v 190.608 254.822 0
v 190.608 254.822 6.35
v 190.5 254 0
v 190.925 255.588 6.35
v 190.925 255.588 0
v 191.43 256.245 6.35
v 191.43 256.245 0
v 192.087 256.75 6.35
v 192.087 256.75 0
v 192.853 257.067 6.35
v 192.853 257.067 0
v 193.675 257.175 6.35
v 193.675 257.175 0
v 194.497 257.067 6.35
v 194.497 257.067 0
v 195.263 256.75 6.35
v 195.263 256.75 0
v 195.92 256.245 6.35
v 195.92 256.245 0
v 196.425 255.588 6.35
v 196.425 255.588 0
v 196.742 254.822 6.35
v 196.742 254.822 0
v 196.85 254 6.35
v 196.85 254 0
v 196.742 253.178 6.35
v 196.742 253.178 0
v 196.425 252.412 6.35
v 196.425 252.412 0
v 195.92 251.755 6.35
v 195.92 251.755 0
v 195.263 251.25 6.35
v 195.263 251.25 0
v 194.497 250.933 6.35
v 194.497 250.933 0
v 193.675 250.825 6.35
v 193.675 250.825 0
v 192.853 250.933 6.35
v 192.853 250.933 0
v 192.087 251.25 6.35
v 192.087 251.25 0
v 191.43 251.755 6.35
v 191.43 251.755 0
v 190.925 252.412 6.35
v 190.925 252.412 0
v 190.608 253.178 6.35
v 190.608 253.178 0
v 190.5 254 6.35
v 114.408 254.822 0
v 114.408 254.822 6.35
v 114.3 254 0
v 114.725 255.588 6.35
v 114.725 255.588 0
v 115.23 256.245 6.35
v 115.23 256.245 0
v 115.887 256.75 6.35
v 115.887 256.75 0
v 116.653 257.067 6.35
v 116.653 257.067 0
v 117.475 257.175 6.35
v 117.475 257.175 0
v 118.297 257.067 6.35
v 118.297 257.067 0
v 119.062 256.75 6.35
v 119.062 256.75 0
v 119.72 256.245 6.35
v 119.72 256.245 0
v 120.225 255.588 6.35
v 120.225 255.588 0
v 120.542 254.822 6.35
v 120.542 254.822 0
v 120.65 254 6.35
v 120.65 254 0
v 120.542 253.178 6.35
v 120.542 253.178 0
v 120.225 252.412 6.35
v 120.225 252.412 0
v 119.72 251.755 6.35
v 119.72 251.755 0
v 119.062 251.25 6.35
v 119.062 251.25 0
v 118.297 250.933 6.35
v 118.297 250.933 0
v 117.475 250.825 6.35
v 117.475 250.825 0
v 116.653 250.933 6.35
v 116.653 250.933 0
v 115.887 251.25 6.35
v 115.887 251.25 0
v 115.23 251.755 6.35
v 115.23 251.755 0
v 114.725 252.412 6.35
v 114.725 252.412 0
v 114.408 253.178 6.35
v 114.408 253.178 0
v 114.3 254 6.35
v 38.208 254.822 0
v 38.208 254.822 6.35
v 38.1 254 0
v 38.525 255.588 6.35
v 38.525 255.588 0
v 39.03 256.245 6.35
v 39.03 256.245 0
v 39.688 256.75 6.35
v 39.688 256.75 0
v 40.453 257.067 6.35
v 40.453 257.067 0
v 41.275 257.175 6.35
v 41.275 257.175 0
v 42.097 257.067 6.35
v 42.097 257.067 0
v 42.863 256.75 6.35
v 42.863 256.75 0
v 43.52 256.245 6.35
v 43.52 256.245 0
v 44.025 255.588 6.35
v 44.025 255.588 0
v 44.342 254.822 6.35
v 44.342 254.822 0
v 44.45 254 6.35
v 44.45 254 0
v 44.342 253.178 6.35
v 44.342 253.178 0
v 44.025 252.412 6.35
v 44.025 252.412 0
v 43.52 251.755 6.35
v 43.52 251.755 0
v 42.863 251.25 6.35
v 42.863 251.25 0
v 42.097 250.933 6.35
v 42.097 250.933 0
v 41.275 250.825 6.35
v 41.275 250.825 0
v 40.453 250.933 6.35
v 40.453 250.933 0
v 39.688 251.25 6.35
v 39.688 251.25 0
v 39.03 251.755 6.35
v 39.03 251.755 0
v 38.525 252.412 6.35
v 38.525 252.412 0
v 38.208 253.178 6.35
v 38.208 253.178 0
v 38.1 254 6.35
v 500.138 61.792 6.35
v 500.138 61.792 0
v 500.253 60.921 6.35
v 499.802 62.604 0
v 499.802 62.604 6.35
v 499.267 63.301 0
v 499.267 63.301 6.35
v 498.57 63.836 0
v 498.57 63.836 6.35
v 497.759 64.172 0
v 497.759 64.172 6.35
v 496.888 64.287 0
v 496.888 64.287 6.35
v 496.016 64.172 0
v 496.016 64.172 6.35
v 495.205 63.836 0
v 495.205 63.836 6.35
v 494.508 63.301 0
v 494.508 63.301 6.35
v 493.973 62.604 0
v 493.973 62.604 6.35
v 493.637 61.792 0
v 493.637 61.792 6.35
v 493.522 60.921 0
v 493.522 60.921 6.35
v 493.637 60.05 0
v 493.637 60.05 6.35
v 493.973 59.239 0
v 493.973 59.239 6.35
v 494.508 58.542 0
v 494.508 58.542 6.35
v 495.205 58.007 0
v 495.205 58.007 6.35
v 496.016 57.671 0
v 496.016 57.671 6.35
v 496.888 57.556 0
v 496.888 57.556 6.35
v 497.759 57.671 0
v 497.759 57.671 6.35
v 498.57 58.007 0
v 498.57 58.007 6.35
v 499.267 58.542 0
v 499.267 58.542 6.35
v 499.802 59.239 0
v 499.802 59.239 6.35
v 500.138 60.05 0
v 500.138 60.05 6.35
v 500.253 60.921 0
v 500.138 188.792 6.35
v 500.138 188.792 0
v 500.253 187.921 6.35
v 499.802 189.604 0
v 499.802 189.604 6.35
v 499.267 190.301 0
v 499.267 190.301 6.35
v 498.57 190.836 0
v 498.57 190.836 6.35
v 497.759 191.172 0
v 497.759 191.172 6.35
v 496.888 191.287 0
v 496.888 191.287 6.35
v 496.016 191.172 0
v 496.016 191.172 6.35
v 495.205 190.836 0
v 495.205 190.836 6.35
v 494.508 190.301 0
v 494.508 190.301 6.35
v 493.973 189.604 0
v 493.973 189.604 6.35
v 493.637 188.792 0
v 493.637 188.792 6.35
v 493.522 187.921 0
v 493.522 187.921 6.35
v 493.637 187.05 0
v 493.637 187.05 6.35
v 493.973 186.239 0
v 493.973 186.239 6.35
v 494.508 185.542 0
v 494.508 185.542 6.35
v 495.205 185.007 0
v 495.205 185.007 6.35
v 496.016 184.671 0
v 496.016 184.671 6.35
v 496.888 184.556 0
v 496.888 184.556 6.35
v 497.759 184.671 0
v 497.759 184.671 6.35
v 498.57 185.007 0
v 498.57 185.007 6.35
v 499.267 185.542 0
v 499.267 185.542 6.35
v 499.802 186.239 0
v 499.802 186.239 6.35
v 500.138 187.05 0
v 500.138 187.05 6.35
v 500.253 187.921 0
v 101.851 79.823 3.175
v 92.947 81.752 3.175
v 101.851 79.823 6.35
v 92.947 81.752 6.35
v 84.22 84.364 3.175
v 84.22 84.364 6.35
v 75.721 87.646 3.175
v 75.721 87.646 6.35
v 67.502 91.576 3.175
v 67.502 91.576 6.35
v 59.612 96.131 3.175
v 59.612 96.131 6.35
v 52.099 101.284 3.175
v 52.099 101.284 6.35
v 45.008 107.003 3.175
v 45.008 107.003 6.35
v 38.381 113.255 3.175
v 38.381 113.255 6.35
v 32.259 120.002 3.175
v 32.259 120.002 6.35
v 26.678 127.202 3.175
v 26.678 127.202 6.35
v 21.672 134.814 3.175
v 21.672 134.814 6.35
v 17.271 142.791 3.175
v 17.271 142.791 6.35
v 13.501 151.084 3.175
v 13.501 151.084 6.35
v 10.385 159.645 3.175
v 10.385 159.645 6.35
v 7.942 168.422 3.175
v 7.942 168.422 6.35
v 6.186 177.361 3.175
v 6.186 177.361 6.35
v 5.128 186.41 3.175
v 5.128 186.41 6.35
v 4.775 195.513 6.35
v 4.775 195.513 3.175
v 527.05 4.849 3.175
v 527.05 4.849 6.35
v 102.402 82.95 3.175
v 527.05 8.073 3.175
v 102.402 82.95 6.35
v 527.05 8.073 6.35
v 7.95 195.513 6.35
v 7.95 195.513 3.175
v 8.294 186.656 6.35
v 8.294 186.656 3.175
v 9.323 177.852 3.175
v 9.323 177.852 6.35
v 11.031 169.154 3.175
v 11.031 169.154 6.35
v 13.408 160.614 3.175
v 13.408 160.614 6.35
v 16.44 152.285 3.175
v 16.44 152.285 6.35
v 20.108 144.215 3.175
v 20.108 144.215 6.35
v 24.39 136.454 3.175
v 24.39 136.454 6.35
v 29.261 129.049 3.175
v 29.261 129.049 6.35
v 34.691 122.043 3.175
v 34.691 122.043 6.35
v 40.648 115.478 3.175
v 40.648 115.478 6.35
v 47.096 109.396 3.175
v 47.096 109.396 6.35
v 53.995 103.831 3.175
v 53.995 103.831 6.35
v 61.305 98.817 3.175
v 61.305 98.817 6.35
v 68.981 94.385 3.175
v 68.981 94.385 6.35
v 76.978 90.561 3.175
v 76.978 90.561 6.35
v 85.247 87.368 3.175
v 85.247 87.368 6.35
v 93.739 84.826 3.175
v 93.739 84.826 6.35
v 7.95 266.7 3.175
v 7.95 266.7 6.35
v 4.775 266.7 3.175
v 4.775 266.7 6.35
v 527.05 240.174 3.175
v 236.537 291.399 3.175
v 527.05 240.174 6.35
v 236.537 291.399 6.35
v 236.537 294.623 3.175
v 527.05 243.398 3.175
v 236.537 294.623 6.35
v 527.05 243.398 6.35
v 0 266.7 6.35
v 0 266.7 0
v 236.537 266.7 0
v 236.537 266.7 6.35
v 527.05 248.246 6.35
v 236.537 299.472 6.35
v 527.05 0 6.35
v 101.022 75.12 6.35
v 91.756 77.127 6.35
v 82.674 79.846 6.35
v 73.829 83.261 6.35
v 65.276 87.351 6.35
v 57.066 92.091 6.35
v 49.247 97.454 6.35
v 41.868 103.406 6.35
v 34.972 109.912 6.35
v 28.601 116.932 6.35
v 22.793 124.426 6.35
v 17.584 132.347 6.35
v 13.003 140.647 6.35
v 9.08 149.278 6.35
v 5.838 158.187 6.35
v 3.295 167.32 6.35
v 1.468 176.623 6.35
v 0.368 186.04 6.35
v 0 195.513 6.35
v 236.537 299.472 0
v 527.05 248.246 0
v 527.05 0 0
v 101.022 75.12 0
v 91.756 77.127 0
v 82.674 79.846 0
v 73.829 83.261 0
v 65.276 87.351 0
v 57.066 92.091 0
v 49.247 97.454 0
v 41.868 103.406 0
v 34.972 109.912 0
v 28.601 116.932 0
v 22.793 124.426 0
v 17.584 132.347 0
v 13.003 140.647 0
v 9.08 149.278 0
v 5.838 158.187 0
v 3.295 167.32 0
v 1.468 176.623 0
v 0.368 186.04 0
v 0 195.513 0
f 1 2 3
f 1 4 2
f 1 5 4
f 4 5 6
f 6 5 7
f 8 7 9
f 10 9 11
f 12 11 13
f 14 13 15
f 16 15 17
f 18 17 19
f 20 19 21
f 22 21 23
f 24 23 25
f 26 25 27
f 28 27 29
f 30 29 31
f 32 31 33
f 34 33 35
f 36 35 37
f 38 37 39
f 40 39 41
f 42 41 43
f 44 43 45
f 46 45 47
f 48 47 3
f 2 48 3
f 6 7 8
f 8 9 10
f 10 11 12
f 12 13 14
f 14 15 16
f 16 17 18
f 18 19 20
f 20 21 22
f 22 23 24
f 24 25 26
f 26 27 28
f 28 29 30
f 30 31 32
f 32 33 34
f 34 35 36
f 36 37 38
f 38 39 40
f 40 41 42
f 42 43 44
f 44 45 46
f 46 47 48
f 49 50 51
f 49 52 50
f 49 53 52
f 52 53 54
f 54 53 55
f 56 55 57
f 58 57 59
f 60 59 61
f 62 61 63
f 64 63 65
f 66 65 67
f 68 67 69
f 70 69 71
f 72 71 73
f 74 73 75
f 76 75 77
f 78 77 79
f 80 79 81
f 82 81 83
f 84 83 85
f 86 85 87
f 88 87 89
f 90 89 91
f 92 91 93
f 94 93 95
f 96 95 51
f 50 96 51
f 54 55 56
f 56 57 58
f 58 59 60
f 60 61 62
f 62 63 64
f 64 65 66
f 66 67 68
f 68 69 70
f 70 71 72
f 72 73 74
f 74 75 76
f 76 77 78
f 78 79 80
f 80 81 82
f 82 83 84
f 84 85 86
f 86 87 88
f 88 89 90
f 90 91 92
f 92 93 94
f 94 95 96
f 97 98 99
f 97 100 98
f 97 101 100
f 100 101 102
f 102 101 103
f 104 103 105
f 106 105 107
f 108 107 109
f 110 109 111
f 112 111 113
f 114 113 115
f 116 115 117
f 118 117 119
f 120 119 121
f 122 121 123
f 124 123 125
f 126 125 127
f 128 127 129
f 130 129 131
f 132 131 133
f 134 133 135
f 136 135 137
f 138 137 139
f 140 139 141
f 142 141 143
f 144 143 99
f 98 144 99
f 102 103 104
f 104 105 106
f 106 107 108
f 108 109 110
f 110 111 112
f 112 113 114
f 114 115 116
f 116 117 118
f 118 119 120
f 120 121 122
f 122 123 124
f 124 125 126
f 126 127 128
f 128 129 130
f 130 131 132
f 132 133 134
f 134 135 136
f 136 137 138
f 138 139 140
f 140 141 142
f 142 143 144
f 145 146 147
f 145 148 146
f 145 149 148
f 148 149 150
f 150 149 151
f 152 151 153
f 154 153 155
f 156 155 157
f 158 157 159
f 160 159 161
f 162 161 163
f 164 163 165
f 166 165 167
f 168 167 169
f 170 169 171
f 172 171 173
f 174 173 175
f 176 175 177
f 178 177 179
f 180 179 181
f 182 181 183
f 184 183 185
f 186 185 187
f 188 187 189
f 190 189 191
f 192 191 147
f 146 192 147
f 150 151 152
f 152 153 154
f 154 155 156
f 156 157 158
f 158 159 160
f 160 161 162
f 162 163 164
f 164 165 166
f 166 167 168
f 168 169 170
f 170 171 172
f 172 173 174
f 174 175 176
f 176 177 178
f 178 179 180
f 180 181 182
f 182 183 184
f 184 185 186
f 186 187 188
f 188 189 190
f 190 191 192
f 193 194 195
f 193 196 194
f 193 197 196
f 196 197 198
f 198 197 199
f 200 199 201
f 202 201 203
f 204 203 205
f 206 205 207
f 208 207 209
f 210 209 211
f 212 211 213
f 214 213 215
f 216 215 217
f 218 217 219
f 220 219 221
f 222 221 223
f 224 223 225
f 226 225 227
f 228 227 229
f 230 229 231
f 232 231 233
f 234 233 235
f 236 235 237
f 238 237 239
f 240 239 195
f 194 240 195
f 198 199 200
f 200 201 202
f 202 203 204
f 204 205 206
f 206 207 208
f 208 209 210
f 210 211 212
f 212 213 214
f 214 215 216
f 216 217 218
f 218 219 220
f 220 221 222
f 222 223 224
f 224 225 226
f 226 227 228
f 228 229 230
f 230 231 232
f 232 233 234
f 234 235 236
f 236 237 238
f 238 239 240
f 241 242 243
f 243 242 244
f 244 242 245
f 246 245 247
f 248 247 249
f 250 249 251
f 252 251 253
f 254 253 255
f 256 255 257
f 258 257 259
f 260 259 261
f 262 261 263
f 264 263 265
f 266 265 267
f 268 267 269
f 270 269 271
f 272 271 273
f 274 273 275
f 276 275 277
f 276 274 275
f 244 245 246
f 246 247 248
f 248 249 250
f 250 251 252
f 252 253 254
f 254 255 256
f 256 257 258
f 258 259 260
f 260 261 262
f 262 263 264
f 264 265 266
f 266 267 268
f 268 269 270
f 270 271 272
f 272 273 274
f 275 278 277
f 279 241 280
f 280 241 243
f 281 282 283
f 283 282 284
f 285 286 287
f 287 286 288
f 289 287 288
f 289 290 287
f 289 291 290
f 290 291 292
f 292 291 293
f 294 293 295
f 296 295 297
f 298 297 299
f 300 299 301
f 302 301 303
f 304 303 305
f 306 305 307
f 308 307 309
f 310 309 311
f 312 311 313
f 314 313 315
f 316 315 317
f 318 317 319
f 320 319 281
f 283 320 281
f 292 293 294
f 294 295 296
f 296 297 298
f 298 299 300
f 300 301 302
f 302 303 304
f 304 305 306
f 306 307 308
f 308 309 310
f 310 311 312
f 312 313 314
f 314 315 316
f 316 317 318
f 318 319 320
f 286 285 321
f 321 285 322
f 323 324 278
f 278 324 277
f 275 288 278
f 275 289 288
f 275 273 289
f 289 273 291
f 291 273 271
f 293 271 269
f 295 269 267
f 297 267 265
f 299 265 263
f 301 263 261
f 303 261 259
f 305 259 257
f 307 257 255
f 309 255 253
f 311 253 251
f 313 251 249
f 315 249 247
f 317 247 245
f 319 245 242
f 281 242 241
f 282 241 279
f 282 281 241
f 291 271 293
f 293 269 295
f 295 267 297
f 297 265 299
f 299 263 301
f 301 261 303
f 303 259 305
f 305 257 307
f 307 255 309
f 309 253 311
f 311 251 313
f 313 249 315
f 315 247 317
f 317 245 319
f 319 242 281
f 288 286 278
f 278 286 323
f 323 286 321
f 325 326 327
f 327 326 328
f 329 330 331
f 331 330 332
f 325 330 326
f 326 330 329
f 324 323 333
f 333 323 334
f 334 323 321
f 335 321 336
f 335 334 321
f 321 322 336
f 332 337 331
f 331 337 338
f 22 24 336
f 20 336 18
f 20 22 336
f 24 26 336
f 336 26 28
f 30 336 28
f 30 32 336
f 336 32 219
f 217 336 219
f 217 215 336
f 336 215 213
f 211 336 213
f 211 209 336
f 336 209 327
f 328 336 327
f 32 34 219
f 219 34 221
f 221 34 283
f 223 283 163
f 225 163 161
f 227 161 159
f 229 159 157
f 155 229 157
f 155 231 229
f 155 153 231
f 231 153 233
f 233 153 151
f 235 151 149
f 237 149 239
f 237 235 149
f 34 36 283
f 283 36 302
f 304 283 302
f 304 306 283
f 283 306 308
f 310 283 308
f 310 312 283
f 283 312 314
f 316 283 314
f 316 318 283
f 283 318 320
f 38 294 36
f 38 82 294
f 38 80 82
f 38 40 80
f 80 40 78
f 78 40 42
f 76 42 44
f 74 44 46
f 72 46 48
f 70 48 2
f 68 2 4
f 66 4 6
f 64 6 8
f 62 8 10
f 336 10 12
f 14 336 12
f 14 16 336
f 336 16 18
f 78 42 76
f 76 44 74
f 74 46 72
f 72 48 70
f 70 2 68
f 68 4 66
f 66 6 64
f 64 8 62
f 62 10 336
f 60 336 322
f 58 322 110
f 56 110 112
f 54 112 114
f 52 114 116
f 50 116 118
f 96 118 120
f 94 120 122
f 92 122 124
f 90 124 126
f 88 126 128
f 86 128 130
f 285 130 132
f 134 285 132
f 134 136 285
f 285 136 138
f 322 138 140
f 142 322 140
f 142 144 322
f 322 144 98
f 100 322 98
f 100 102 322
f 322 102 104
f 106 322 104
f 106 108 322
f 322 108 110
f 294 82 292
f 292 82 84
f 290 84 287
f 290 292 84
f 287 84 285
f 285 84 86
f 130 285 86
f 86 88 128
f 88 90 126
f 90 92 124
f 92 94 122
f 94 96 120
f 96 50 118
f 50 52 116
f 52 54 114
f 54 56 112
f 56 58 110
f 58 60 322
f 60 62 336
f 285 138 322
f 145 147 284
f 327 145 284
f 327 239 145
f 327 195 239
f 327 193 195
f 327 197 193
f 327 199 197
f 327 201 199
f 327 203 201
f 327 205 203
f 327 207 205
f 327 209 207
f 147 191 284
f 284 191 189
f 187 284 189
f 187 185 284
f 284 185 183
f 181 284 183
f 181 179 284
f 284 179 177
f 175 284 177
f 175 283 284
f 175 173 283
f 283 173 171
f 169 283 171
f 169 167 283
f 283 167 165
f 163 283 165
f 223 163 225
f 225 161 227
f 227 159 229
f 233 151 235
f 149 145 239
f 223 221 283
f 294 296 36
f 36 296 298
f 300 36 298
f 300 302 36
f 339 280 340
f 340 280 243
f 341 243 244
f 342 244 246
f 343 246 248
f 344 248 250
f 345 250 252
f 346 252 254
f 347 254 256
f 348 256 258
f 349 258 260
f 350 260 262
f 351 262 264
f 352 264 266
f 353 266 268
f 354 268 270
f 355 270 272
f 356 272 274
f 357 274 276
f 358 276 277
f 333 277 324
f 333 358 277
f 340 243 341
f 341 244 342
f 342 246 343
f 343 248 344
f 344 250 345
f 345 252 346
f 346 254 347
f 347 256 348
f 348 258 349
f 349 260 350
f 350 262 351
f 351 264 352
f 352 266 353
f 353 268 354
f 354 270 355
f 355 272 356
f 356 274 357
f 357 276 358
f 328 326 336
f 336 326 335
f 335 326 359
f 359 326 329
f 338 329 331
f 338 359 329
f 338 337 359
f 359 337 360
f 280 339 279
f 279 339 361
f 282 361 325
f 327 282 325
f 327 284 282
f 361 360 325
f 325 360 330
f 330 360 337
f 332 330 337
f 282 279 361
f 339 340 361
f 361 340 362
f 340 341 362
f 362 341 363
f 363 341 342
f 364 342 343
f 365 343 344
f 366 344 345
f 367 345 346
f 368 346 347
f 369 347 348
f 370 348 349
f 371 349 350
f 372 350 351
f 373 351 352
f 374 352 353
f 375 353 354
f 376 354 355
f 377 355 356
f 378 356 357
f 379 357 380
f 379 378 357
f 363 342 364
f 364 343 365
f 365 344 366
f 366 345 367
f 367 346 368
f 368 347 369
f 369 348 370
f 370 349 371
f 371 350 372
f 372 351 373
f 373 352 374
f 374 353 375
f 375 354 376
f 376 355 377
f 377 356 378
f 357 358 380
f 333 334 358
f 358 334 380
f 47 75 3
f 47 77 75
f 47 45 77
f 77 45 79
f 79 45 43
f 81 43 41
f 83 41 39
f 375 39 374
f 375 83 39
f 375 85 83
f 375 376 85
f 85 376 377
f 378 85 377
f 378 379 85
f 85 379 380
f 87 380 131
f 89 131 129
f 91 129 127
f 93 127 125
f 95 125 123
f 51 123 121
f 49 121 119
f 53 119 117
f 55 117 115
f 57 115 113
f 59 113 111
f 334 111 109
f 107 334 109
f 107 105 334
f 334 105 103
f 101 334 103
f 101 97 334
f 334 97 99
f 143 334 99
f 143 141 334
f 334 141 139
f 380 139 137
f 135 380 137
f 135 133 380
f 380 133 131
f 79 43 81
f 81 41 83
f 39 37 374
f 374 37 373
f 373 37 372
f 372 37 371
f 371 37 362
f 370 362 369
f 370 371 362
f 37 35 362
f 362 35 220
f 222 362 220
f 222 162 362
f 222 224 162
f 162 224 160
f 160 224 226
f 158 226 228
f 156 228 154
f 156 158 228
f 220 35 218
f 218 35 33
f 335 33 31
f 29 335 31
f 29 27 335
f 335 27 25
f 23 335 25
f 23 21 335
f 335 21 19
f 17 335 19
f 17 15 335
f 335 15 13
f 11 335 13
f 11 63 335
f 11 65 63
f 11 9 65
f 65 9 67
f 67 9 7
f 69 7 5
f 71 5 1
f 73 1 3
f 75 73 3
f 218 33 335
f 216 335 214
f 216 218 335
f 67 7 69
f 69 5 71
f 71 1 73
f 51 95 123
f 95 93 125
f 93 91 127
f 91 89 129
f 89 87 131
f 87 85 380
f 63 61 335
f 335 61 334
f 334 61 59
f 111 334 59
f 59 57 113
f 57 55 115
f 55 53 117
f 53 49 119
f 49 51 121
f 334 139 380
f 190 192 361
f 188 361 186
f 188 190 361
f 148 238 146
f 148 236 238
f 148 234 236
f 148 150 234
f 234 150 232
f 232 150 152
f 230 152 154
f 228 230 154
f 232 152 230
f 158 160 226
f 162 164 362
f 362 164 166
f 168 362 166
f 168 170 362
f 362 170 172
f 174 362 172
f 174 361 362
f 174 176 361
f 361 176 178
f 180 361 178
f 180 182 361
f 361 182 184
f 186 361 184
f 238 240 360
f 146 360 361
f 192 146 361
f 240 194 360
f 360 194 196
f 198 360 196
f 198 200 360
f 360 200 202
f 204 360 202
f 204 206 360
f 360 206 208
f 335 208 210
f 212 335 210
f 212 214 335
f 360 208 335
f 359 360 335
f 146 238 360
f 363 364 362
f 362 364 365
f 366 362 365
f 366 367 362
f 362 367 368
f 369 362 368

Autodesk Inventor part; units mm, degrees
ref_plane "YZ Plane" through (0, 0, 0) normal (1, 0, 0) x (0, 1, 0)
ref_plane "XZ Plane" through (0, 0, 0) normal (0, 1, 0) x (-1, 0, 0)
ref_plane "XY Plane" through (0, 0, 0) normal (0, 0, 1) x (1, 0, 0)
sketch "Sketch1" plane through (0, 0, 0) normal (0, 0, 1) x (1, 0, 0)
  line L0 (0, 0) -> (236.5375, 0)
  line L1 (527.05, 0) -> (527.05, 248.2464)
  line L2 (236.5375, 266.7) -> (0, 266.7)
  line L3 (0, 266.7) -> (0, 195.5132)
  line L4 (527.05, 0) -> (101.0217, 75.1203)
  line L5 (527.05, 248.2464) -> (236.5375, 299.4716)
  line L6 (236.5375, 266.7) -> (236.5375, 299.4716)
  arc A0 (0, 195.5132) -> (101.0217, 75.1203) centre (122.2502, 195.5132) ccw
  circle A1 centre (496.8875, 187.9214) radius 3.3655
  circle A2 centre (496.8875, 60.9214) radius 3.3655
  point P0 (0, 92.9331)
  dimension "d0" = 266.7
  dimension "d2" = 10
  dimension "d3" = 244.475
  dimension "d4" = 236.5375
  dimension "d5" = 527.05
  dimension "d18" = 122.2502
  dimension "d20" = 6.731
  dimension "d21" = 60.325
  dimension "d22" = 127
  dimension "d23" = 30.1625
  dimension "d24" = 30.1625
extrude "Extrusion1" add sketch "Sketch1" along normal blind 6.35 contours L4 A0 L3 L2 L6 L5 L1 | A1 | A2
sketch "Sketch2" plane through (0, 0, 6.35) normal (0, 0, 1) x (1, 0, 0)
  line L0 (236.5375, 266.7) -> (236.5375, 299.4716) projected
  line L1 (0, 266.7) -> (236.5375, 266.7) projected
  line L2 (0, 195.5132) -> (0, 266.7) projected
  line L3 (527.05, 0) -> (101.0217, 75.1203) projected
  line L4 (527.05, 248.2464) -> (527.05, 0) projected
  line L5 (236.5375, 299.4716) -> (527.05, 248.2464) projected
  line L6 (236.5375, 294.6227) -> (527.05, 243.3976)
  line L7 (527.05, 4.8489) -> (101.8509, 79.8229)
  line L8 (4.7752, 195.5132) -> (4.7752, 266.7)
  line L9 (236.5375, 291.3988) -> (527.05, 240.1736)
  line L10 (527.05, 8.0728) -> (102.4022, 82.9497)
  line L11 (7.9502, 195.5132) -> (7.9502, 266.7)
  line L12 (4.7752, 266.7) -> (7.9502, 266.7)
  line L13 (527.05, 8.0728) -> (527.05, 4.8489)
  line L14 (236.5375, 294.6227) -> (236.5375, 291.3988)
  line L15 (527.05, 243.3976) -> (527.05, 240.1736)
  arc A0 (7.9502, 195.5132) -> (102.4022, 82.9497) centre (122.2502, 195.5132) ccw
  arc A1 (4.7752, 195.5132) -> (101.8509, 79.8229) centre (122.2502, 195.5132) ccw
  point P0 (0, 88.4544)
  point P1 (0, 0)
  point P2 (4.7752, 96.94)
  point P3 (7.9502, 99.6041)
  point P4 (101.0217, 75.1203)
  dimension "d8" = 3.175
  dimension "d9" = 4.7752
  dimension "d10" = 4.7752
  dimension "d11" = 3.175
  dimension "d12" = 4.7752
  dimension "d13" = 3.175
  dimension "d16" = 114.3
  dimension "d17" = 117.475
extrude "Extrusion2" cut sketch "Sketch2" against normal blind 3.175 contours L0 L6 L4 L9 | L11 A0 L10 L4 L7 A1 L8 L1
extrude "Extrusion3" cut sketch "Sketch1" along normal blind 25.4 contours A1 | A2
hole "Hole1" at (41.275, 254, 6.35) direction (0, 0, -1) diameter 6.35 depth 25.4 tip angle 118
pattern_linear "Rectangular Pattern1" count 3 spacing 76.2 along (1, 0, 0) of "Hole1"
equation "\"d24\" = d23"
properties part number "GE-12086-01"
